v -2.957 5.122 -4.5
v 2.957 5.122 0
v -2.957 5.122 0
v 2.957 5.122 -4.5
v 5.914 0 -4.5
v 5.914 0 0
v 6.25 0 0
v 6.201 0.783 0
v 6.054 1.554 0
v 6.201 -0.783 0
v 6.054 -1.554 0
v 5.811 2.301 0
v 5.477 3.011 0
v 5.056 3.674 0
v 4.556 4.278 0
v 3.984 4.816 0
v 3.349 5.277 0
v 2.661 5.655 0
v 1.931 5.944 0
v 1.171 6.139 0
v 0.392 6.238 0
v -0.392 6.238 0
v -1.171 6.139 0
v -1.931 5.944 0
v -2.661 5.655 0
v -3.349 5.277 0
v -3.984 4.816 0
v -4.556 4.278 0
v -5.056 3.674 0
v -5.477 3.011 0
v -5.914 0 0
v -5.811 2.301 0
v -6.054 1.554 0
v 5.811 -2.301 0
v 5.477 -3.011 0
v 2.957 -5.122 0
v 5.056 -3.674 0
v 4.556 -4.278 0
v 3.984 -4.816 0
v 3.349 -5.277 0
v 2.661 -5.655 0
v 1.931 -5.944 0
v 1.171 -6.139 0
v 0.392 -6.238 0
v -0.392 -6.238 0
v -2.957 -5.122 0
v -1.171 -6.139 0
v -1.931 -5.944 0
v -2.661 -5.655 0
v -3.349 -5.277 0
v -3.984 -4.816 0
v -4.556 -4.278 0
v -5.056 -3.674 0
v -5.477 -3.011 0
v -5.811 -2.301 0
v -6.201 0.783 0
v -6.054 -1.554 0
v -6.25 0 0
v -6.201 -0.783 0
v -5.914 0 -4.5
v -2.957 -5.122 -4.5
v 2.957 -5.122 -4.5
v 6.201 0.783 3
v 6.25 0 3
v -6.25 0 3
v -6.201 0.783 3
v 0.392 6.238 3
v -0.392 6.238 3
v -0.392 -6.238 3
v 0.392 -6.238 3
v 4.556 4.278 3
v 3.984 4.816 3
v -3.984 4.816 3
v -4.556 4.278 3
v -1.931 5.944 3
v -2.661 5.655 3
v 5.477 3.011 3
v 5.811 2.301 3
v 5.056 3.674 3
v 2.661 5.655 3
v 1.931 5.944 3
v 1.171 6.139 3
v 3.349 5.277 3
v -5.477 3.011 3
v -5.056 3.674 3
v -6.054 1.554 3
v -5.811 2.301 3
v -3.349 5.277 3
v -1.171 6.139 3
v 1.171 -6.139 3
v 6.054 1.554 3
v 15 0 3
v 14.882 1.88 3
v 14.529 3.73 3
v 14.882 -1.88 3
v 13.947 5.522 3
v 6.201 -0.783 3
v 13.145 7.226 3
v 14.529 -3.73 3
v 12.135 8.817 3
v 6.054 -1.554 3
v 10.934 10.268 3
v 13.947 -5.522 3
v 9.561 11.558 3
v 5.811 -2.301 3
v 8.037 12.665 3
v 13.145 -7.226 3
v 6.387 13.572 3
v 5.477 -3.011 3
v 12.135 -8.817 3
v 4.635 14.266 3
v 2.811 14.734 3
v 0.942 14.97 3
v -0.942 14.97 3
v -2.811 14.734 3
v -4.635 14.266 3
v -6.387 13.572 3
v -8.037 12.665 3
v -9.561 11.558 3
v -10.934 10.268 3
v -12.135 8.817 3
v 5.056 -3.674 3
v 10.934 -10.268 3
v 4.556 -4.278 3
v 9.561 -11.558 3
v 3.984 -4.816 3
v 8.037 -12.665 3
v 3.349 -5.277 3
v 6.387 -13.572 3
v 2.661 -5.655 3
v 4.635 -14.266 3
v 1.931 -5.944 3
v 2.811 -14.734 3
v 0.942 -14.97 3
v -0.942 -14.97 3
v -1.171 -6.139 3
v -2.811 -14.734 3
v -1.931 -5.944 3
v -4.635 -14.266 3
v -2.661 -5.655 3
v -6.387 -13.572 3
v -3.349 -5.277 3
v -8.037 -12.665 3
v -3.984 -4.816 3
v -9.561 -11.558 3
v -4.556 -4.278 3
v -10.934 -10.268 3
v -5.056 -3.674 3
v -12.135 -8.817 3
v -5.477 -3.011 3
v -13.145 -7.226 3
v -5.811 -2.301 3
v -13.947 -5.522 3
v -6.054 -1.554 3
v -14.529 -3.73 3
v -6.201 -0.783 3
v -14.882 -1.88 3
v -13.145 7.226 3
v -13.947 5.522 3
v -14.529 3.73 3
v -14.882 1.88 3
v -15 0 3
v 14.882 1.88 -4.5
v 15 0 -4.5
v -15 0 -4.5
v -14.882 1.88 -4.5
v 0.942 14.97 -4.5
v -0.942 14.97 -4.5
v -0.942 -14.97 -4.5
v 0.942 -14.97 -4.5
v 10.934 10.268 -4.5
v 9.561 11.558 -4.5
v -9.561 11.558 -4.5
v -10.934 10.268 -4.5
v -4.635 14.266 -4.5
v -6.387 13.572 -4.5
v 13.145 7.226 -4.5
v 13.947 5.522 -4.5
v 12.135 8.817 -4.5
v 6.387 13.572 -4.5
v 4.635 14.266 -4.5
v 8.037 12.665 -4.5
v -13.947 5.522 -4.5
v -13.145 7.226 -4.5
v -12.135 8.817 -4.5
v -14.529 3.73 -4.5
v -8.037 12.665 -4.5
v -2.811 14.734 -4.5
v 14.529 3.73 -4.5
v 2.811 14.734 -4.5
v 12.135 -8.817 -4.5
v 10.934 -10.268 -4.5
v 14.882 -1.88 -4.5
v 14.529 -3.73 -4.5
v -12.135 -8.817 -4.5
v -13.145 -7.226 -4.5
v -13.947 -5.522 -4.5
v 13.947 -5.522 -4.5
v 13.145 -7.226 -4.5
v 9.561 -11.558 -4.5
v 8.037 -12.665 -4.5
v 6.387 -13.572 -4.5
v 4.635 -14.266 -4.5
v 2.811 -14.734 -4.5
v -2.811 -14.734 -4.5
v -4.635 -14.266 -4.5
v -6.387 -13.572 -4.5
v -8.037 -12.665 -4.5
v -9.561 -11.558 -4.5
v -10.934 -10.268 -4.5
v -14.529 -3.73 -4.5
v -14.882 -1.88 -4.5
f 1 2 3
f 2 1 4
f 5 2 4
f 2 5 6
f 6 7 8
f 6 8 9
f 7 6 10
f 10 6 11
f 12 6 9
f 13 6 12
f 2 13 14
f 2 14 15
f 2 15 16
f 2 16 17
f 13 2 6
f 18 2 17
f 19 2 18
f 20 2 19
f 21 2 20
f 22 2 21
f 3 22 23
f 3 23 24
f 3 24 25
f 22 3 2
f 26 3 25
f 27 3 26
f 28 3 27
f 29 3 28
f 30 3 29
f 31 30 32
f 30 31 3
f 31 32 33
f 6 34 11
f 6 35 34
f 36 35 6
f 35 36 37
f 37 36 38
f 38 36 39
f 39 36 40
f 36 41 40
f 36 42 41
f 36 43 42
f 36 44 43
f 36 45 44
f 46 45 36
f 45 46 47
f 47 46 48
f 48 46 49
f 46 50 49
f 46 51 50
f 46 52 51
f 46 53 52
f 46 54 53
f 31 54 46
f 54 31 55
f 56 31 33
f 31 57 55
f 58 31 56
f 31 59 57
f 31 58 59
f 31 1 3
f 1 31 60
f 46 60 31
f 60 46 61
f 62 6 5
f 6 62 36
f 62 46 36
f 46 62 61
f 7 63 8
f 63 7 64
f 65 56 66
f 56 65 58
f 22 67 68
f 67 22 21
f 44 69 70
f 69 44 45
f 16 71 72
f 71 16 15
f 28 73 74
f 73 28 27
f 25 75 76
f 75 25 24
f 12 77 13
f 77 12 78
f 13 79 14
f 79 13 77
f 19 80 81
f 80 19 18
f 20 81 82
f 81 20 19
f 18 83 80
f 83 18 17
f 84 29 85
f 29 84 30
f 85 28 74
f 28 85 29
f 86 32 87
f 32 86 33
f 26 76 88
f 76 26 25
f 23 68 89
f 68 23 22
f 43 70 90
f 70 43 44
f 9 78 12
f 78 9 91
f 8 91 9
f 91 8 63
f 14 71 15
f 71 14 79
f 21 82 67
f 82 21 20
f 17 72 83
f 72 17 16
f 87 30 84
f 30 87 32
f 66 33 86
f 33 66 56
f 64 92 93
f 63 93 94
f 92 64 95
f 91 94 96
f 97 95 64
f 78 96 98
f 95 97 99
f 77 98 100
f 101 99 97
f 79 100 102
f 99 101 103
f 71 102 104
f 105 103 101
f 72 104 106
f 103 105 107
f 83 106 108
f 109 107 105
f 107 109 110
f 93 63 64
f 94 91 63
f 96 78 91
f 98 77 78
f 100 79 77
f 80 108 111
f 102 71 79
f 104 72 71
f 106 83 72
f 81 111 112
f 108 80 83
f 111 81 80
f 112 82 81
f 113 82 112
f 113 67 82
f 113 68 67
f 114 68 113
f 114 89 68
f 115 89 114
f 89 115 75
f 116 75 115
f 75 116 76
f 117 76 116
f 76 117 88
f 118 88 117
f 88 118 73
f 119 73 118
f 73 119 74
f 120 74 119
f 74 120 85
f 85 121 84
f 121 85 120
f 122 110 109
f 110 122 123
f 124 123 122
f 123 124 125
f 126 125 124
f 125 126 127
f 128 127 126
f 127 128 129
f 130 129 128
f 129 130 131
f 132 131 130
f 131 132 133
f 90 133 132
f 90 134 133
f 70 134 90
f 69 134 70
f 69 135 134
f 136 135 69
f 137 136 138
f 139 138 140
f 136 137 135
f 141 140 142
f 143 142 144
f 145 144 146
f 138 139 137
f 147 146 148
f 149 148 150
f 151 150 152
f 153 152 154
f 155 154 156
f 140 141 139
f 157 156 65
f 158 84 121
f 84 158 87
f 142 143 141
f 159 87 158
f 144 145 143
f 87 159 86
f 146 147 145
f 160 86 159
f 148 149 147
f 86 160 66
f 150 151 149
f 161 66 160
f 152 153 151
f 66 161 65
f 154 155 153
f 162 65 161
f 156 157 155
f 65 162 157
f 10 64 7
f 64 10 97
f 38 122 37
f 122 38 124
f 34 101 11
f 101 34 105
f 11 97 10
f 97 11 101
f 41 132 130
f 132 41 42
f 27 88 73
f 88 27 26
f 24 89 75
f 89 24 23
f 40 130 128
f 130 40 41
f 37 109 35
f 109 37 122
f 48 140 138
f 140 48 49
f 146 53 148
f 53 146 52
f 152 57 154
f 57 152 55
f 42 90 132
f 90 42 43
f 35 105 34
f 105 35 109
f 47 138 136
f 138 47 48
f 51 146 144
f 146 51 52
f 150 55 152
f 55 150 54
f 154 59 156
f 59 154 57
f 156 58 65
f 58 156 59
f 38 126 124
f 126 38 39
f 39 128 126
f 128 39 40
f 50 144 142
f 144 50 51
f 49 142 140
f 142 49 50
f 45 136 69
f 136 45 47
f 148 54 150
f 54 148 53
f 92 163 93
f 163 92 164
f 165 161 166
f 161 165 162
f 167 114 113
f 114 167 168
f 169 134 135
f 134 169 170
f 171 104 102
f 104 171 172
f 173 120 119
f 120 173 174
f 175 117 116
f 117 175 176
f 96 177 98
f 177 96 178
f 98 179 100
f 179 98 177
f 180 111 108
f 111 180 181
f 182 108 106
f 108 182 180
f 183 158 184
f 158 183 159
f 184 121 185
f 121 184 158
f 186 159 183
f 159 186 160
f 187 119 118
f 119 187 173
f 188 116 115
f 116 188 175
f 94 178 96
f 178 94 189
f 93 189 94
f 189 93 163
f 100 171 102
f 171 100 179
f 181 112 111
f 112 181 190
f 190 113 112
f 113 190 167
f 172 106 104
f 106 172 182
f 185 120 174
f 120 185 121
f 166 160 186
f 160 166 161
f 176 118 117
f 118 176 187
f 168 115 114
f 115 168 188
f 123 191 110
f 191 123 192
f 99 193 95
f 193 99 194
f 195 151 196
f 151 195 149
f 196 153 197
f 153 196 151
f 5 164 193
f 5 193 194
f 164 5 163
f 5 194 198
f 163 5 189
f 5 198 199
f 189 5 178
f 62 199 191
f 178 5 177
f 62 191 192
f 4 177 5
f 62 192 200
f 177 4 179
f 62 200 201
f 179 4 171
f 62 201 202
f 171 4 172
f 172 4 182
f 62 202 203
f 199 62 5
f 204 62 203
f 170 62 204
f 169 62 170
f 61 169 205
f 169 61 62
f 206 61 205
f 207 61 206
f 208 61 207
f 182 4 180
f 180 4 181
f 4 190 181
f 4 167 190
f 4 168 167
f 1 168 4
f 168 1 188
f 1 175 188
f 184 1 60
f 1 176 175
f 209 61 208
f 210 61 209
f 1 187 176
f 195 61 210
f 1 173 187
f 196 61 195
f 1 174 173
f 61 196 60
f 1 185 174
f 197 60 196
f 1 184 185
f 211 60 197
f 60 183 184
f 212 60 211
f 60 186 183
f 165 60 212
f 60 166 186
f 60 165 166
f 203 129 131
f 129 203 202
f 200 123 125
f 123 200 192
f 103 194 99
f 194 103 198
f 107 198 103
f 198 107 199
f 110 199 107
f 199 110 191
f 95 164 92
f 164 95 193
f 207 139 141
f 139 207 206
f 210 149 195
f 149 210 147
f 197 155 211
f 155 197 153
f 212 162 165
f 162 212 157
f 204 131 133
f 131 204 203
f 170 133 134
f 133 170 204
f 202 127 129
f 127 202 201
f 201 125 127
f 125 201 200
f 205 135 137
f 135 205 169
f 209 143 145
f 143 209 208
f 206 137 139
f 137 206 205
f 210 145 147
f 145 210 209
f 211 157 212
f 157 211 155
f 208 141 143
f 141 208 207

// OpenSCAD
$fn = 50;

difference() {
	union() {
		translate(v = [0, 0, -4.5]) {
			cylinder(h = 7.5, r = 15.0);
		}
	}
	union() {
		translate(v = [0, 0, 0]) {
			rotate(a = [0, 0, 0]) {
				difference() {
					union() {
						translate(v = [0, 0, -5]) {
							linear_extrude(height = 5) {
								polygon(points = [[5.914249999999999, 0.0], [2.957125, 5.1218907443321156], [-2.9571249999999982, 5.1218907443321156], [-5.914249999999999, 7.242867331857232e-16], [-2.9571250000000022, -5.121890744332115], [2.9571249999999956, -5.121890744332118]]);
							}
						}
					}
					union();
				}
			}
		}
		#cylinder(h = 3, r = 6.25);
		#translate(v = [0, 0, -100.0]) {
			cylinder(h = 200, r = 3.25);
		}
	}
}
